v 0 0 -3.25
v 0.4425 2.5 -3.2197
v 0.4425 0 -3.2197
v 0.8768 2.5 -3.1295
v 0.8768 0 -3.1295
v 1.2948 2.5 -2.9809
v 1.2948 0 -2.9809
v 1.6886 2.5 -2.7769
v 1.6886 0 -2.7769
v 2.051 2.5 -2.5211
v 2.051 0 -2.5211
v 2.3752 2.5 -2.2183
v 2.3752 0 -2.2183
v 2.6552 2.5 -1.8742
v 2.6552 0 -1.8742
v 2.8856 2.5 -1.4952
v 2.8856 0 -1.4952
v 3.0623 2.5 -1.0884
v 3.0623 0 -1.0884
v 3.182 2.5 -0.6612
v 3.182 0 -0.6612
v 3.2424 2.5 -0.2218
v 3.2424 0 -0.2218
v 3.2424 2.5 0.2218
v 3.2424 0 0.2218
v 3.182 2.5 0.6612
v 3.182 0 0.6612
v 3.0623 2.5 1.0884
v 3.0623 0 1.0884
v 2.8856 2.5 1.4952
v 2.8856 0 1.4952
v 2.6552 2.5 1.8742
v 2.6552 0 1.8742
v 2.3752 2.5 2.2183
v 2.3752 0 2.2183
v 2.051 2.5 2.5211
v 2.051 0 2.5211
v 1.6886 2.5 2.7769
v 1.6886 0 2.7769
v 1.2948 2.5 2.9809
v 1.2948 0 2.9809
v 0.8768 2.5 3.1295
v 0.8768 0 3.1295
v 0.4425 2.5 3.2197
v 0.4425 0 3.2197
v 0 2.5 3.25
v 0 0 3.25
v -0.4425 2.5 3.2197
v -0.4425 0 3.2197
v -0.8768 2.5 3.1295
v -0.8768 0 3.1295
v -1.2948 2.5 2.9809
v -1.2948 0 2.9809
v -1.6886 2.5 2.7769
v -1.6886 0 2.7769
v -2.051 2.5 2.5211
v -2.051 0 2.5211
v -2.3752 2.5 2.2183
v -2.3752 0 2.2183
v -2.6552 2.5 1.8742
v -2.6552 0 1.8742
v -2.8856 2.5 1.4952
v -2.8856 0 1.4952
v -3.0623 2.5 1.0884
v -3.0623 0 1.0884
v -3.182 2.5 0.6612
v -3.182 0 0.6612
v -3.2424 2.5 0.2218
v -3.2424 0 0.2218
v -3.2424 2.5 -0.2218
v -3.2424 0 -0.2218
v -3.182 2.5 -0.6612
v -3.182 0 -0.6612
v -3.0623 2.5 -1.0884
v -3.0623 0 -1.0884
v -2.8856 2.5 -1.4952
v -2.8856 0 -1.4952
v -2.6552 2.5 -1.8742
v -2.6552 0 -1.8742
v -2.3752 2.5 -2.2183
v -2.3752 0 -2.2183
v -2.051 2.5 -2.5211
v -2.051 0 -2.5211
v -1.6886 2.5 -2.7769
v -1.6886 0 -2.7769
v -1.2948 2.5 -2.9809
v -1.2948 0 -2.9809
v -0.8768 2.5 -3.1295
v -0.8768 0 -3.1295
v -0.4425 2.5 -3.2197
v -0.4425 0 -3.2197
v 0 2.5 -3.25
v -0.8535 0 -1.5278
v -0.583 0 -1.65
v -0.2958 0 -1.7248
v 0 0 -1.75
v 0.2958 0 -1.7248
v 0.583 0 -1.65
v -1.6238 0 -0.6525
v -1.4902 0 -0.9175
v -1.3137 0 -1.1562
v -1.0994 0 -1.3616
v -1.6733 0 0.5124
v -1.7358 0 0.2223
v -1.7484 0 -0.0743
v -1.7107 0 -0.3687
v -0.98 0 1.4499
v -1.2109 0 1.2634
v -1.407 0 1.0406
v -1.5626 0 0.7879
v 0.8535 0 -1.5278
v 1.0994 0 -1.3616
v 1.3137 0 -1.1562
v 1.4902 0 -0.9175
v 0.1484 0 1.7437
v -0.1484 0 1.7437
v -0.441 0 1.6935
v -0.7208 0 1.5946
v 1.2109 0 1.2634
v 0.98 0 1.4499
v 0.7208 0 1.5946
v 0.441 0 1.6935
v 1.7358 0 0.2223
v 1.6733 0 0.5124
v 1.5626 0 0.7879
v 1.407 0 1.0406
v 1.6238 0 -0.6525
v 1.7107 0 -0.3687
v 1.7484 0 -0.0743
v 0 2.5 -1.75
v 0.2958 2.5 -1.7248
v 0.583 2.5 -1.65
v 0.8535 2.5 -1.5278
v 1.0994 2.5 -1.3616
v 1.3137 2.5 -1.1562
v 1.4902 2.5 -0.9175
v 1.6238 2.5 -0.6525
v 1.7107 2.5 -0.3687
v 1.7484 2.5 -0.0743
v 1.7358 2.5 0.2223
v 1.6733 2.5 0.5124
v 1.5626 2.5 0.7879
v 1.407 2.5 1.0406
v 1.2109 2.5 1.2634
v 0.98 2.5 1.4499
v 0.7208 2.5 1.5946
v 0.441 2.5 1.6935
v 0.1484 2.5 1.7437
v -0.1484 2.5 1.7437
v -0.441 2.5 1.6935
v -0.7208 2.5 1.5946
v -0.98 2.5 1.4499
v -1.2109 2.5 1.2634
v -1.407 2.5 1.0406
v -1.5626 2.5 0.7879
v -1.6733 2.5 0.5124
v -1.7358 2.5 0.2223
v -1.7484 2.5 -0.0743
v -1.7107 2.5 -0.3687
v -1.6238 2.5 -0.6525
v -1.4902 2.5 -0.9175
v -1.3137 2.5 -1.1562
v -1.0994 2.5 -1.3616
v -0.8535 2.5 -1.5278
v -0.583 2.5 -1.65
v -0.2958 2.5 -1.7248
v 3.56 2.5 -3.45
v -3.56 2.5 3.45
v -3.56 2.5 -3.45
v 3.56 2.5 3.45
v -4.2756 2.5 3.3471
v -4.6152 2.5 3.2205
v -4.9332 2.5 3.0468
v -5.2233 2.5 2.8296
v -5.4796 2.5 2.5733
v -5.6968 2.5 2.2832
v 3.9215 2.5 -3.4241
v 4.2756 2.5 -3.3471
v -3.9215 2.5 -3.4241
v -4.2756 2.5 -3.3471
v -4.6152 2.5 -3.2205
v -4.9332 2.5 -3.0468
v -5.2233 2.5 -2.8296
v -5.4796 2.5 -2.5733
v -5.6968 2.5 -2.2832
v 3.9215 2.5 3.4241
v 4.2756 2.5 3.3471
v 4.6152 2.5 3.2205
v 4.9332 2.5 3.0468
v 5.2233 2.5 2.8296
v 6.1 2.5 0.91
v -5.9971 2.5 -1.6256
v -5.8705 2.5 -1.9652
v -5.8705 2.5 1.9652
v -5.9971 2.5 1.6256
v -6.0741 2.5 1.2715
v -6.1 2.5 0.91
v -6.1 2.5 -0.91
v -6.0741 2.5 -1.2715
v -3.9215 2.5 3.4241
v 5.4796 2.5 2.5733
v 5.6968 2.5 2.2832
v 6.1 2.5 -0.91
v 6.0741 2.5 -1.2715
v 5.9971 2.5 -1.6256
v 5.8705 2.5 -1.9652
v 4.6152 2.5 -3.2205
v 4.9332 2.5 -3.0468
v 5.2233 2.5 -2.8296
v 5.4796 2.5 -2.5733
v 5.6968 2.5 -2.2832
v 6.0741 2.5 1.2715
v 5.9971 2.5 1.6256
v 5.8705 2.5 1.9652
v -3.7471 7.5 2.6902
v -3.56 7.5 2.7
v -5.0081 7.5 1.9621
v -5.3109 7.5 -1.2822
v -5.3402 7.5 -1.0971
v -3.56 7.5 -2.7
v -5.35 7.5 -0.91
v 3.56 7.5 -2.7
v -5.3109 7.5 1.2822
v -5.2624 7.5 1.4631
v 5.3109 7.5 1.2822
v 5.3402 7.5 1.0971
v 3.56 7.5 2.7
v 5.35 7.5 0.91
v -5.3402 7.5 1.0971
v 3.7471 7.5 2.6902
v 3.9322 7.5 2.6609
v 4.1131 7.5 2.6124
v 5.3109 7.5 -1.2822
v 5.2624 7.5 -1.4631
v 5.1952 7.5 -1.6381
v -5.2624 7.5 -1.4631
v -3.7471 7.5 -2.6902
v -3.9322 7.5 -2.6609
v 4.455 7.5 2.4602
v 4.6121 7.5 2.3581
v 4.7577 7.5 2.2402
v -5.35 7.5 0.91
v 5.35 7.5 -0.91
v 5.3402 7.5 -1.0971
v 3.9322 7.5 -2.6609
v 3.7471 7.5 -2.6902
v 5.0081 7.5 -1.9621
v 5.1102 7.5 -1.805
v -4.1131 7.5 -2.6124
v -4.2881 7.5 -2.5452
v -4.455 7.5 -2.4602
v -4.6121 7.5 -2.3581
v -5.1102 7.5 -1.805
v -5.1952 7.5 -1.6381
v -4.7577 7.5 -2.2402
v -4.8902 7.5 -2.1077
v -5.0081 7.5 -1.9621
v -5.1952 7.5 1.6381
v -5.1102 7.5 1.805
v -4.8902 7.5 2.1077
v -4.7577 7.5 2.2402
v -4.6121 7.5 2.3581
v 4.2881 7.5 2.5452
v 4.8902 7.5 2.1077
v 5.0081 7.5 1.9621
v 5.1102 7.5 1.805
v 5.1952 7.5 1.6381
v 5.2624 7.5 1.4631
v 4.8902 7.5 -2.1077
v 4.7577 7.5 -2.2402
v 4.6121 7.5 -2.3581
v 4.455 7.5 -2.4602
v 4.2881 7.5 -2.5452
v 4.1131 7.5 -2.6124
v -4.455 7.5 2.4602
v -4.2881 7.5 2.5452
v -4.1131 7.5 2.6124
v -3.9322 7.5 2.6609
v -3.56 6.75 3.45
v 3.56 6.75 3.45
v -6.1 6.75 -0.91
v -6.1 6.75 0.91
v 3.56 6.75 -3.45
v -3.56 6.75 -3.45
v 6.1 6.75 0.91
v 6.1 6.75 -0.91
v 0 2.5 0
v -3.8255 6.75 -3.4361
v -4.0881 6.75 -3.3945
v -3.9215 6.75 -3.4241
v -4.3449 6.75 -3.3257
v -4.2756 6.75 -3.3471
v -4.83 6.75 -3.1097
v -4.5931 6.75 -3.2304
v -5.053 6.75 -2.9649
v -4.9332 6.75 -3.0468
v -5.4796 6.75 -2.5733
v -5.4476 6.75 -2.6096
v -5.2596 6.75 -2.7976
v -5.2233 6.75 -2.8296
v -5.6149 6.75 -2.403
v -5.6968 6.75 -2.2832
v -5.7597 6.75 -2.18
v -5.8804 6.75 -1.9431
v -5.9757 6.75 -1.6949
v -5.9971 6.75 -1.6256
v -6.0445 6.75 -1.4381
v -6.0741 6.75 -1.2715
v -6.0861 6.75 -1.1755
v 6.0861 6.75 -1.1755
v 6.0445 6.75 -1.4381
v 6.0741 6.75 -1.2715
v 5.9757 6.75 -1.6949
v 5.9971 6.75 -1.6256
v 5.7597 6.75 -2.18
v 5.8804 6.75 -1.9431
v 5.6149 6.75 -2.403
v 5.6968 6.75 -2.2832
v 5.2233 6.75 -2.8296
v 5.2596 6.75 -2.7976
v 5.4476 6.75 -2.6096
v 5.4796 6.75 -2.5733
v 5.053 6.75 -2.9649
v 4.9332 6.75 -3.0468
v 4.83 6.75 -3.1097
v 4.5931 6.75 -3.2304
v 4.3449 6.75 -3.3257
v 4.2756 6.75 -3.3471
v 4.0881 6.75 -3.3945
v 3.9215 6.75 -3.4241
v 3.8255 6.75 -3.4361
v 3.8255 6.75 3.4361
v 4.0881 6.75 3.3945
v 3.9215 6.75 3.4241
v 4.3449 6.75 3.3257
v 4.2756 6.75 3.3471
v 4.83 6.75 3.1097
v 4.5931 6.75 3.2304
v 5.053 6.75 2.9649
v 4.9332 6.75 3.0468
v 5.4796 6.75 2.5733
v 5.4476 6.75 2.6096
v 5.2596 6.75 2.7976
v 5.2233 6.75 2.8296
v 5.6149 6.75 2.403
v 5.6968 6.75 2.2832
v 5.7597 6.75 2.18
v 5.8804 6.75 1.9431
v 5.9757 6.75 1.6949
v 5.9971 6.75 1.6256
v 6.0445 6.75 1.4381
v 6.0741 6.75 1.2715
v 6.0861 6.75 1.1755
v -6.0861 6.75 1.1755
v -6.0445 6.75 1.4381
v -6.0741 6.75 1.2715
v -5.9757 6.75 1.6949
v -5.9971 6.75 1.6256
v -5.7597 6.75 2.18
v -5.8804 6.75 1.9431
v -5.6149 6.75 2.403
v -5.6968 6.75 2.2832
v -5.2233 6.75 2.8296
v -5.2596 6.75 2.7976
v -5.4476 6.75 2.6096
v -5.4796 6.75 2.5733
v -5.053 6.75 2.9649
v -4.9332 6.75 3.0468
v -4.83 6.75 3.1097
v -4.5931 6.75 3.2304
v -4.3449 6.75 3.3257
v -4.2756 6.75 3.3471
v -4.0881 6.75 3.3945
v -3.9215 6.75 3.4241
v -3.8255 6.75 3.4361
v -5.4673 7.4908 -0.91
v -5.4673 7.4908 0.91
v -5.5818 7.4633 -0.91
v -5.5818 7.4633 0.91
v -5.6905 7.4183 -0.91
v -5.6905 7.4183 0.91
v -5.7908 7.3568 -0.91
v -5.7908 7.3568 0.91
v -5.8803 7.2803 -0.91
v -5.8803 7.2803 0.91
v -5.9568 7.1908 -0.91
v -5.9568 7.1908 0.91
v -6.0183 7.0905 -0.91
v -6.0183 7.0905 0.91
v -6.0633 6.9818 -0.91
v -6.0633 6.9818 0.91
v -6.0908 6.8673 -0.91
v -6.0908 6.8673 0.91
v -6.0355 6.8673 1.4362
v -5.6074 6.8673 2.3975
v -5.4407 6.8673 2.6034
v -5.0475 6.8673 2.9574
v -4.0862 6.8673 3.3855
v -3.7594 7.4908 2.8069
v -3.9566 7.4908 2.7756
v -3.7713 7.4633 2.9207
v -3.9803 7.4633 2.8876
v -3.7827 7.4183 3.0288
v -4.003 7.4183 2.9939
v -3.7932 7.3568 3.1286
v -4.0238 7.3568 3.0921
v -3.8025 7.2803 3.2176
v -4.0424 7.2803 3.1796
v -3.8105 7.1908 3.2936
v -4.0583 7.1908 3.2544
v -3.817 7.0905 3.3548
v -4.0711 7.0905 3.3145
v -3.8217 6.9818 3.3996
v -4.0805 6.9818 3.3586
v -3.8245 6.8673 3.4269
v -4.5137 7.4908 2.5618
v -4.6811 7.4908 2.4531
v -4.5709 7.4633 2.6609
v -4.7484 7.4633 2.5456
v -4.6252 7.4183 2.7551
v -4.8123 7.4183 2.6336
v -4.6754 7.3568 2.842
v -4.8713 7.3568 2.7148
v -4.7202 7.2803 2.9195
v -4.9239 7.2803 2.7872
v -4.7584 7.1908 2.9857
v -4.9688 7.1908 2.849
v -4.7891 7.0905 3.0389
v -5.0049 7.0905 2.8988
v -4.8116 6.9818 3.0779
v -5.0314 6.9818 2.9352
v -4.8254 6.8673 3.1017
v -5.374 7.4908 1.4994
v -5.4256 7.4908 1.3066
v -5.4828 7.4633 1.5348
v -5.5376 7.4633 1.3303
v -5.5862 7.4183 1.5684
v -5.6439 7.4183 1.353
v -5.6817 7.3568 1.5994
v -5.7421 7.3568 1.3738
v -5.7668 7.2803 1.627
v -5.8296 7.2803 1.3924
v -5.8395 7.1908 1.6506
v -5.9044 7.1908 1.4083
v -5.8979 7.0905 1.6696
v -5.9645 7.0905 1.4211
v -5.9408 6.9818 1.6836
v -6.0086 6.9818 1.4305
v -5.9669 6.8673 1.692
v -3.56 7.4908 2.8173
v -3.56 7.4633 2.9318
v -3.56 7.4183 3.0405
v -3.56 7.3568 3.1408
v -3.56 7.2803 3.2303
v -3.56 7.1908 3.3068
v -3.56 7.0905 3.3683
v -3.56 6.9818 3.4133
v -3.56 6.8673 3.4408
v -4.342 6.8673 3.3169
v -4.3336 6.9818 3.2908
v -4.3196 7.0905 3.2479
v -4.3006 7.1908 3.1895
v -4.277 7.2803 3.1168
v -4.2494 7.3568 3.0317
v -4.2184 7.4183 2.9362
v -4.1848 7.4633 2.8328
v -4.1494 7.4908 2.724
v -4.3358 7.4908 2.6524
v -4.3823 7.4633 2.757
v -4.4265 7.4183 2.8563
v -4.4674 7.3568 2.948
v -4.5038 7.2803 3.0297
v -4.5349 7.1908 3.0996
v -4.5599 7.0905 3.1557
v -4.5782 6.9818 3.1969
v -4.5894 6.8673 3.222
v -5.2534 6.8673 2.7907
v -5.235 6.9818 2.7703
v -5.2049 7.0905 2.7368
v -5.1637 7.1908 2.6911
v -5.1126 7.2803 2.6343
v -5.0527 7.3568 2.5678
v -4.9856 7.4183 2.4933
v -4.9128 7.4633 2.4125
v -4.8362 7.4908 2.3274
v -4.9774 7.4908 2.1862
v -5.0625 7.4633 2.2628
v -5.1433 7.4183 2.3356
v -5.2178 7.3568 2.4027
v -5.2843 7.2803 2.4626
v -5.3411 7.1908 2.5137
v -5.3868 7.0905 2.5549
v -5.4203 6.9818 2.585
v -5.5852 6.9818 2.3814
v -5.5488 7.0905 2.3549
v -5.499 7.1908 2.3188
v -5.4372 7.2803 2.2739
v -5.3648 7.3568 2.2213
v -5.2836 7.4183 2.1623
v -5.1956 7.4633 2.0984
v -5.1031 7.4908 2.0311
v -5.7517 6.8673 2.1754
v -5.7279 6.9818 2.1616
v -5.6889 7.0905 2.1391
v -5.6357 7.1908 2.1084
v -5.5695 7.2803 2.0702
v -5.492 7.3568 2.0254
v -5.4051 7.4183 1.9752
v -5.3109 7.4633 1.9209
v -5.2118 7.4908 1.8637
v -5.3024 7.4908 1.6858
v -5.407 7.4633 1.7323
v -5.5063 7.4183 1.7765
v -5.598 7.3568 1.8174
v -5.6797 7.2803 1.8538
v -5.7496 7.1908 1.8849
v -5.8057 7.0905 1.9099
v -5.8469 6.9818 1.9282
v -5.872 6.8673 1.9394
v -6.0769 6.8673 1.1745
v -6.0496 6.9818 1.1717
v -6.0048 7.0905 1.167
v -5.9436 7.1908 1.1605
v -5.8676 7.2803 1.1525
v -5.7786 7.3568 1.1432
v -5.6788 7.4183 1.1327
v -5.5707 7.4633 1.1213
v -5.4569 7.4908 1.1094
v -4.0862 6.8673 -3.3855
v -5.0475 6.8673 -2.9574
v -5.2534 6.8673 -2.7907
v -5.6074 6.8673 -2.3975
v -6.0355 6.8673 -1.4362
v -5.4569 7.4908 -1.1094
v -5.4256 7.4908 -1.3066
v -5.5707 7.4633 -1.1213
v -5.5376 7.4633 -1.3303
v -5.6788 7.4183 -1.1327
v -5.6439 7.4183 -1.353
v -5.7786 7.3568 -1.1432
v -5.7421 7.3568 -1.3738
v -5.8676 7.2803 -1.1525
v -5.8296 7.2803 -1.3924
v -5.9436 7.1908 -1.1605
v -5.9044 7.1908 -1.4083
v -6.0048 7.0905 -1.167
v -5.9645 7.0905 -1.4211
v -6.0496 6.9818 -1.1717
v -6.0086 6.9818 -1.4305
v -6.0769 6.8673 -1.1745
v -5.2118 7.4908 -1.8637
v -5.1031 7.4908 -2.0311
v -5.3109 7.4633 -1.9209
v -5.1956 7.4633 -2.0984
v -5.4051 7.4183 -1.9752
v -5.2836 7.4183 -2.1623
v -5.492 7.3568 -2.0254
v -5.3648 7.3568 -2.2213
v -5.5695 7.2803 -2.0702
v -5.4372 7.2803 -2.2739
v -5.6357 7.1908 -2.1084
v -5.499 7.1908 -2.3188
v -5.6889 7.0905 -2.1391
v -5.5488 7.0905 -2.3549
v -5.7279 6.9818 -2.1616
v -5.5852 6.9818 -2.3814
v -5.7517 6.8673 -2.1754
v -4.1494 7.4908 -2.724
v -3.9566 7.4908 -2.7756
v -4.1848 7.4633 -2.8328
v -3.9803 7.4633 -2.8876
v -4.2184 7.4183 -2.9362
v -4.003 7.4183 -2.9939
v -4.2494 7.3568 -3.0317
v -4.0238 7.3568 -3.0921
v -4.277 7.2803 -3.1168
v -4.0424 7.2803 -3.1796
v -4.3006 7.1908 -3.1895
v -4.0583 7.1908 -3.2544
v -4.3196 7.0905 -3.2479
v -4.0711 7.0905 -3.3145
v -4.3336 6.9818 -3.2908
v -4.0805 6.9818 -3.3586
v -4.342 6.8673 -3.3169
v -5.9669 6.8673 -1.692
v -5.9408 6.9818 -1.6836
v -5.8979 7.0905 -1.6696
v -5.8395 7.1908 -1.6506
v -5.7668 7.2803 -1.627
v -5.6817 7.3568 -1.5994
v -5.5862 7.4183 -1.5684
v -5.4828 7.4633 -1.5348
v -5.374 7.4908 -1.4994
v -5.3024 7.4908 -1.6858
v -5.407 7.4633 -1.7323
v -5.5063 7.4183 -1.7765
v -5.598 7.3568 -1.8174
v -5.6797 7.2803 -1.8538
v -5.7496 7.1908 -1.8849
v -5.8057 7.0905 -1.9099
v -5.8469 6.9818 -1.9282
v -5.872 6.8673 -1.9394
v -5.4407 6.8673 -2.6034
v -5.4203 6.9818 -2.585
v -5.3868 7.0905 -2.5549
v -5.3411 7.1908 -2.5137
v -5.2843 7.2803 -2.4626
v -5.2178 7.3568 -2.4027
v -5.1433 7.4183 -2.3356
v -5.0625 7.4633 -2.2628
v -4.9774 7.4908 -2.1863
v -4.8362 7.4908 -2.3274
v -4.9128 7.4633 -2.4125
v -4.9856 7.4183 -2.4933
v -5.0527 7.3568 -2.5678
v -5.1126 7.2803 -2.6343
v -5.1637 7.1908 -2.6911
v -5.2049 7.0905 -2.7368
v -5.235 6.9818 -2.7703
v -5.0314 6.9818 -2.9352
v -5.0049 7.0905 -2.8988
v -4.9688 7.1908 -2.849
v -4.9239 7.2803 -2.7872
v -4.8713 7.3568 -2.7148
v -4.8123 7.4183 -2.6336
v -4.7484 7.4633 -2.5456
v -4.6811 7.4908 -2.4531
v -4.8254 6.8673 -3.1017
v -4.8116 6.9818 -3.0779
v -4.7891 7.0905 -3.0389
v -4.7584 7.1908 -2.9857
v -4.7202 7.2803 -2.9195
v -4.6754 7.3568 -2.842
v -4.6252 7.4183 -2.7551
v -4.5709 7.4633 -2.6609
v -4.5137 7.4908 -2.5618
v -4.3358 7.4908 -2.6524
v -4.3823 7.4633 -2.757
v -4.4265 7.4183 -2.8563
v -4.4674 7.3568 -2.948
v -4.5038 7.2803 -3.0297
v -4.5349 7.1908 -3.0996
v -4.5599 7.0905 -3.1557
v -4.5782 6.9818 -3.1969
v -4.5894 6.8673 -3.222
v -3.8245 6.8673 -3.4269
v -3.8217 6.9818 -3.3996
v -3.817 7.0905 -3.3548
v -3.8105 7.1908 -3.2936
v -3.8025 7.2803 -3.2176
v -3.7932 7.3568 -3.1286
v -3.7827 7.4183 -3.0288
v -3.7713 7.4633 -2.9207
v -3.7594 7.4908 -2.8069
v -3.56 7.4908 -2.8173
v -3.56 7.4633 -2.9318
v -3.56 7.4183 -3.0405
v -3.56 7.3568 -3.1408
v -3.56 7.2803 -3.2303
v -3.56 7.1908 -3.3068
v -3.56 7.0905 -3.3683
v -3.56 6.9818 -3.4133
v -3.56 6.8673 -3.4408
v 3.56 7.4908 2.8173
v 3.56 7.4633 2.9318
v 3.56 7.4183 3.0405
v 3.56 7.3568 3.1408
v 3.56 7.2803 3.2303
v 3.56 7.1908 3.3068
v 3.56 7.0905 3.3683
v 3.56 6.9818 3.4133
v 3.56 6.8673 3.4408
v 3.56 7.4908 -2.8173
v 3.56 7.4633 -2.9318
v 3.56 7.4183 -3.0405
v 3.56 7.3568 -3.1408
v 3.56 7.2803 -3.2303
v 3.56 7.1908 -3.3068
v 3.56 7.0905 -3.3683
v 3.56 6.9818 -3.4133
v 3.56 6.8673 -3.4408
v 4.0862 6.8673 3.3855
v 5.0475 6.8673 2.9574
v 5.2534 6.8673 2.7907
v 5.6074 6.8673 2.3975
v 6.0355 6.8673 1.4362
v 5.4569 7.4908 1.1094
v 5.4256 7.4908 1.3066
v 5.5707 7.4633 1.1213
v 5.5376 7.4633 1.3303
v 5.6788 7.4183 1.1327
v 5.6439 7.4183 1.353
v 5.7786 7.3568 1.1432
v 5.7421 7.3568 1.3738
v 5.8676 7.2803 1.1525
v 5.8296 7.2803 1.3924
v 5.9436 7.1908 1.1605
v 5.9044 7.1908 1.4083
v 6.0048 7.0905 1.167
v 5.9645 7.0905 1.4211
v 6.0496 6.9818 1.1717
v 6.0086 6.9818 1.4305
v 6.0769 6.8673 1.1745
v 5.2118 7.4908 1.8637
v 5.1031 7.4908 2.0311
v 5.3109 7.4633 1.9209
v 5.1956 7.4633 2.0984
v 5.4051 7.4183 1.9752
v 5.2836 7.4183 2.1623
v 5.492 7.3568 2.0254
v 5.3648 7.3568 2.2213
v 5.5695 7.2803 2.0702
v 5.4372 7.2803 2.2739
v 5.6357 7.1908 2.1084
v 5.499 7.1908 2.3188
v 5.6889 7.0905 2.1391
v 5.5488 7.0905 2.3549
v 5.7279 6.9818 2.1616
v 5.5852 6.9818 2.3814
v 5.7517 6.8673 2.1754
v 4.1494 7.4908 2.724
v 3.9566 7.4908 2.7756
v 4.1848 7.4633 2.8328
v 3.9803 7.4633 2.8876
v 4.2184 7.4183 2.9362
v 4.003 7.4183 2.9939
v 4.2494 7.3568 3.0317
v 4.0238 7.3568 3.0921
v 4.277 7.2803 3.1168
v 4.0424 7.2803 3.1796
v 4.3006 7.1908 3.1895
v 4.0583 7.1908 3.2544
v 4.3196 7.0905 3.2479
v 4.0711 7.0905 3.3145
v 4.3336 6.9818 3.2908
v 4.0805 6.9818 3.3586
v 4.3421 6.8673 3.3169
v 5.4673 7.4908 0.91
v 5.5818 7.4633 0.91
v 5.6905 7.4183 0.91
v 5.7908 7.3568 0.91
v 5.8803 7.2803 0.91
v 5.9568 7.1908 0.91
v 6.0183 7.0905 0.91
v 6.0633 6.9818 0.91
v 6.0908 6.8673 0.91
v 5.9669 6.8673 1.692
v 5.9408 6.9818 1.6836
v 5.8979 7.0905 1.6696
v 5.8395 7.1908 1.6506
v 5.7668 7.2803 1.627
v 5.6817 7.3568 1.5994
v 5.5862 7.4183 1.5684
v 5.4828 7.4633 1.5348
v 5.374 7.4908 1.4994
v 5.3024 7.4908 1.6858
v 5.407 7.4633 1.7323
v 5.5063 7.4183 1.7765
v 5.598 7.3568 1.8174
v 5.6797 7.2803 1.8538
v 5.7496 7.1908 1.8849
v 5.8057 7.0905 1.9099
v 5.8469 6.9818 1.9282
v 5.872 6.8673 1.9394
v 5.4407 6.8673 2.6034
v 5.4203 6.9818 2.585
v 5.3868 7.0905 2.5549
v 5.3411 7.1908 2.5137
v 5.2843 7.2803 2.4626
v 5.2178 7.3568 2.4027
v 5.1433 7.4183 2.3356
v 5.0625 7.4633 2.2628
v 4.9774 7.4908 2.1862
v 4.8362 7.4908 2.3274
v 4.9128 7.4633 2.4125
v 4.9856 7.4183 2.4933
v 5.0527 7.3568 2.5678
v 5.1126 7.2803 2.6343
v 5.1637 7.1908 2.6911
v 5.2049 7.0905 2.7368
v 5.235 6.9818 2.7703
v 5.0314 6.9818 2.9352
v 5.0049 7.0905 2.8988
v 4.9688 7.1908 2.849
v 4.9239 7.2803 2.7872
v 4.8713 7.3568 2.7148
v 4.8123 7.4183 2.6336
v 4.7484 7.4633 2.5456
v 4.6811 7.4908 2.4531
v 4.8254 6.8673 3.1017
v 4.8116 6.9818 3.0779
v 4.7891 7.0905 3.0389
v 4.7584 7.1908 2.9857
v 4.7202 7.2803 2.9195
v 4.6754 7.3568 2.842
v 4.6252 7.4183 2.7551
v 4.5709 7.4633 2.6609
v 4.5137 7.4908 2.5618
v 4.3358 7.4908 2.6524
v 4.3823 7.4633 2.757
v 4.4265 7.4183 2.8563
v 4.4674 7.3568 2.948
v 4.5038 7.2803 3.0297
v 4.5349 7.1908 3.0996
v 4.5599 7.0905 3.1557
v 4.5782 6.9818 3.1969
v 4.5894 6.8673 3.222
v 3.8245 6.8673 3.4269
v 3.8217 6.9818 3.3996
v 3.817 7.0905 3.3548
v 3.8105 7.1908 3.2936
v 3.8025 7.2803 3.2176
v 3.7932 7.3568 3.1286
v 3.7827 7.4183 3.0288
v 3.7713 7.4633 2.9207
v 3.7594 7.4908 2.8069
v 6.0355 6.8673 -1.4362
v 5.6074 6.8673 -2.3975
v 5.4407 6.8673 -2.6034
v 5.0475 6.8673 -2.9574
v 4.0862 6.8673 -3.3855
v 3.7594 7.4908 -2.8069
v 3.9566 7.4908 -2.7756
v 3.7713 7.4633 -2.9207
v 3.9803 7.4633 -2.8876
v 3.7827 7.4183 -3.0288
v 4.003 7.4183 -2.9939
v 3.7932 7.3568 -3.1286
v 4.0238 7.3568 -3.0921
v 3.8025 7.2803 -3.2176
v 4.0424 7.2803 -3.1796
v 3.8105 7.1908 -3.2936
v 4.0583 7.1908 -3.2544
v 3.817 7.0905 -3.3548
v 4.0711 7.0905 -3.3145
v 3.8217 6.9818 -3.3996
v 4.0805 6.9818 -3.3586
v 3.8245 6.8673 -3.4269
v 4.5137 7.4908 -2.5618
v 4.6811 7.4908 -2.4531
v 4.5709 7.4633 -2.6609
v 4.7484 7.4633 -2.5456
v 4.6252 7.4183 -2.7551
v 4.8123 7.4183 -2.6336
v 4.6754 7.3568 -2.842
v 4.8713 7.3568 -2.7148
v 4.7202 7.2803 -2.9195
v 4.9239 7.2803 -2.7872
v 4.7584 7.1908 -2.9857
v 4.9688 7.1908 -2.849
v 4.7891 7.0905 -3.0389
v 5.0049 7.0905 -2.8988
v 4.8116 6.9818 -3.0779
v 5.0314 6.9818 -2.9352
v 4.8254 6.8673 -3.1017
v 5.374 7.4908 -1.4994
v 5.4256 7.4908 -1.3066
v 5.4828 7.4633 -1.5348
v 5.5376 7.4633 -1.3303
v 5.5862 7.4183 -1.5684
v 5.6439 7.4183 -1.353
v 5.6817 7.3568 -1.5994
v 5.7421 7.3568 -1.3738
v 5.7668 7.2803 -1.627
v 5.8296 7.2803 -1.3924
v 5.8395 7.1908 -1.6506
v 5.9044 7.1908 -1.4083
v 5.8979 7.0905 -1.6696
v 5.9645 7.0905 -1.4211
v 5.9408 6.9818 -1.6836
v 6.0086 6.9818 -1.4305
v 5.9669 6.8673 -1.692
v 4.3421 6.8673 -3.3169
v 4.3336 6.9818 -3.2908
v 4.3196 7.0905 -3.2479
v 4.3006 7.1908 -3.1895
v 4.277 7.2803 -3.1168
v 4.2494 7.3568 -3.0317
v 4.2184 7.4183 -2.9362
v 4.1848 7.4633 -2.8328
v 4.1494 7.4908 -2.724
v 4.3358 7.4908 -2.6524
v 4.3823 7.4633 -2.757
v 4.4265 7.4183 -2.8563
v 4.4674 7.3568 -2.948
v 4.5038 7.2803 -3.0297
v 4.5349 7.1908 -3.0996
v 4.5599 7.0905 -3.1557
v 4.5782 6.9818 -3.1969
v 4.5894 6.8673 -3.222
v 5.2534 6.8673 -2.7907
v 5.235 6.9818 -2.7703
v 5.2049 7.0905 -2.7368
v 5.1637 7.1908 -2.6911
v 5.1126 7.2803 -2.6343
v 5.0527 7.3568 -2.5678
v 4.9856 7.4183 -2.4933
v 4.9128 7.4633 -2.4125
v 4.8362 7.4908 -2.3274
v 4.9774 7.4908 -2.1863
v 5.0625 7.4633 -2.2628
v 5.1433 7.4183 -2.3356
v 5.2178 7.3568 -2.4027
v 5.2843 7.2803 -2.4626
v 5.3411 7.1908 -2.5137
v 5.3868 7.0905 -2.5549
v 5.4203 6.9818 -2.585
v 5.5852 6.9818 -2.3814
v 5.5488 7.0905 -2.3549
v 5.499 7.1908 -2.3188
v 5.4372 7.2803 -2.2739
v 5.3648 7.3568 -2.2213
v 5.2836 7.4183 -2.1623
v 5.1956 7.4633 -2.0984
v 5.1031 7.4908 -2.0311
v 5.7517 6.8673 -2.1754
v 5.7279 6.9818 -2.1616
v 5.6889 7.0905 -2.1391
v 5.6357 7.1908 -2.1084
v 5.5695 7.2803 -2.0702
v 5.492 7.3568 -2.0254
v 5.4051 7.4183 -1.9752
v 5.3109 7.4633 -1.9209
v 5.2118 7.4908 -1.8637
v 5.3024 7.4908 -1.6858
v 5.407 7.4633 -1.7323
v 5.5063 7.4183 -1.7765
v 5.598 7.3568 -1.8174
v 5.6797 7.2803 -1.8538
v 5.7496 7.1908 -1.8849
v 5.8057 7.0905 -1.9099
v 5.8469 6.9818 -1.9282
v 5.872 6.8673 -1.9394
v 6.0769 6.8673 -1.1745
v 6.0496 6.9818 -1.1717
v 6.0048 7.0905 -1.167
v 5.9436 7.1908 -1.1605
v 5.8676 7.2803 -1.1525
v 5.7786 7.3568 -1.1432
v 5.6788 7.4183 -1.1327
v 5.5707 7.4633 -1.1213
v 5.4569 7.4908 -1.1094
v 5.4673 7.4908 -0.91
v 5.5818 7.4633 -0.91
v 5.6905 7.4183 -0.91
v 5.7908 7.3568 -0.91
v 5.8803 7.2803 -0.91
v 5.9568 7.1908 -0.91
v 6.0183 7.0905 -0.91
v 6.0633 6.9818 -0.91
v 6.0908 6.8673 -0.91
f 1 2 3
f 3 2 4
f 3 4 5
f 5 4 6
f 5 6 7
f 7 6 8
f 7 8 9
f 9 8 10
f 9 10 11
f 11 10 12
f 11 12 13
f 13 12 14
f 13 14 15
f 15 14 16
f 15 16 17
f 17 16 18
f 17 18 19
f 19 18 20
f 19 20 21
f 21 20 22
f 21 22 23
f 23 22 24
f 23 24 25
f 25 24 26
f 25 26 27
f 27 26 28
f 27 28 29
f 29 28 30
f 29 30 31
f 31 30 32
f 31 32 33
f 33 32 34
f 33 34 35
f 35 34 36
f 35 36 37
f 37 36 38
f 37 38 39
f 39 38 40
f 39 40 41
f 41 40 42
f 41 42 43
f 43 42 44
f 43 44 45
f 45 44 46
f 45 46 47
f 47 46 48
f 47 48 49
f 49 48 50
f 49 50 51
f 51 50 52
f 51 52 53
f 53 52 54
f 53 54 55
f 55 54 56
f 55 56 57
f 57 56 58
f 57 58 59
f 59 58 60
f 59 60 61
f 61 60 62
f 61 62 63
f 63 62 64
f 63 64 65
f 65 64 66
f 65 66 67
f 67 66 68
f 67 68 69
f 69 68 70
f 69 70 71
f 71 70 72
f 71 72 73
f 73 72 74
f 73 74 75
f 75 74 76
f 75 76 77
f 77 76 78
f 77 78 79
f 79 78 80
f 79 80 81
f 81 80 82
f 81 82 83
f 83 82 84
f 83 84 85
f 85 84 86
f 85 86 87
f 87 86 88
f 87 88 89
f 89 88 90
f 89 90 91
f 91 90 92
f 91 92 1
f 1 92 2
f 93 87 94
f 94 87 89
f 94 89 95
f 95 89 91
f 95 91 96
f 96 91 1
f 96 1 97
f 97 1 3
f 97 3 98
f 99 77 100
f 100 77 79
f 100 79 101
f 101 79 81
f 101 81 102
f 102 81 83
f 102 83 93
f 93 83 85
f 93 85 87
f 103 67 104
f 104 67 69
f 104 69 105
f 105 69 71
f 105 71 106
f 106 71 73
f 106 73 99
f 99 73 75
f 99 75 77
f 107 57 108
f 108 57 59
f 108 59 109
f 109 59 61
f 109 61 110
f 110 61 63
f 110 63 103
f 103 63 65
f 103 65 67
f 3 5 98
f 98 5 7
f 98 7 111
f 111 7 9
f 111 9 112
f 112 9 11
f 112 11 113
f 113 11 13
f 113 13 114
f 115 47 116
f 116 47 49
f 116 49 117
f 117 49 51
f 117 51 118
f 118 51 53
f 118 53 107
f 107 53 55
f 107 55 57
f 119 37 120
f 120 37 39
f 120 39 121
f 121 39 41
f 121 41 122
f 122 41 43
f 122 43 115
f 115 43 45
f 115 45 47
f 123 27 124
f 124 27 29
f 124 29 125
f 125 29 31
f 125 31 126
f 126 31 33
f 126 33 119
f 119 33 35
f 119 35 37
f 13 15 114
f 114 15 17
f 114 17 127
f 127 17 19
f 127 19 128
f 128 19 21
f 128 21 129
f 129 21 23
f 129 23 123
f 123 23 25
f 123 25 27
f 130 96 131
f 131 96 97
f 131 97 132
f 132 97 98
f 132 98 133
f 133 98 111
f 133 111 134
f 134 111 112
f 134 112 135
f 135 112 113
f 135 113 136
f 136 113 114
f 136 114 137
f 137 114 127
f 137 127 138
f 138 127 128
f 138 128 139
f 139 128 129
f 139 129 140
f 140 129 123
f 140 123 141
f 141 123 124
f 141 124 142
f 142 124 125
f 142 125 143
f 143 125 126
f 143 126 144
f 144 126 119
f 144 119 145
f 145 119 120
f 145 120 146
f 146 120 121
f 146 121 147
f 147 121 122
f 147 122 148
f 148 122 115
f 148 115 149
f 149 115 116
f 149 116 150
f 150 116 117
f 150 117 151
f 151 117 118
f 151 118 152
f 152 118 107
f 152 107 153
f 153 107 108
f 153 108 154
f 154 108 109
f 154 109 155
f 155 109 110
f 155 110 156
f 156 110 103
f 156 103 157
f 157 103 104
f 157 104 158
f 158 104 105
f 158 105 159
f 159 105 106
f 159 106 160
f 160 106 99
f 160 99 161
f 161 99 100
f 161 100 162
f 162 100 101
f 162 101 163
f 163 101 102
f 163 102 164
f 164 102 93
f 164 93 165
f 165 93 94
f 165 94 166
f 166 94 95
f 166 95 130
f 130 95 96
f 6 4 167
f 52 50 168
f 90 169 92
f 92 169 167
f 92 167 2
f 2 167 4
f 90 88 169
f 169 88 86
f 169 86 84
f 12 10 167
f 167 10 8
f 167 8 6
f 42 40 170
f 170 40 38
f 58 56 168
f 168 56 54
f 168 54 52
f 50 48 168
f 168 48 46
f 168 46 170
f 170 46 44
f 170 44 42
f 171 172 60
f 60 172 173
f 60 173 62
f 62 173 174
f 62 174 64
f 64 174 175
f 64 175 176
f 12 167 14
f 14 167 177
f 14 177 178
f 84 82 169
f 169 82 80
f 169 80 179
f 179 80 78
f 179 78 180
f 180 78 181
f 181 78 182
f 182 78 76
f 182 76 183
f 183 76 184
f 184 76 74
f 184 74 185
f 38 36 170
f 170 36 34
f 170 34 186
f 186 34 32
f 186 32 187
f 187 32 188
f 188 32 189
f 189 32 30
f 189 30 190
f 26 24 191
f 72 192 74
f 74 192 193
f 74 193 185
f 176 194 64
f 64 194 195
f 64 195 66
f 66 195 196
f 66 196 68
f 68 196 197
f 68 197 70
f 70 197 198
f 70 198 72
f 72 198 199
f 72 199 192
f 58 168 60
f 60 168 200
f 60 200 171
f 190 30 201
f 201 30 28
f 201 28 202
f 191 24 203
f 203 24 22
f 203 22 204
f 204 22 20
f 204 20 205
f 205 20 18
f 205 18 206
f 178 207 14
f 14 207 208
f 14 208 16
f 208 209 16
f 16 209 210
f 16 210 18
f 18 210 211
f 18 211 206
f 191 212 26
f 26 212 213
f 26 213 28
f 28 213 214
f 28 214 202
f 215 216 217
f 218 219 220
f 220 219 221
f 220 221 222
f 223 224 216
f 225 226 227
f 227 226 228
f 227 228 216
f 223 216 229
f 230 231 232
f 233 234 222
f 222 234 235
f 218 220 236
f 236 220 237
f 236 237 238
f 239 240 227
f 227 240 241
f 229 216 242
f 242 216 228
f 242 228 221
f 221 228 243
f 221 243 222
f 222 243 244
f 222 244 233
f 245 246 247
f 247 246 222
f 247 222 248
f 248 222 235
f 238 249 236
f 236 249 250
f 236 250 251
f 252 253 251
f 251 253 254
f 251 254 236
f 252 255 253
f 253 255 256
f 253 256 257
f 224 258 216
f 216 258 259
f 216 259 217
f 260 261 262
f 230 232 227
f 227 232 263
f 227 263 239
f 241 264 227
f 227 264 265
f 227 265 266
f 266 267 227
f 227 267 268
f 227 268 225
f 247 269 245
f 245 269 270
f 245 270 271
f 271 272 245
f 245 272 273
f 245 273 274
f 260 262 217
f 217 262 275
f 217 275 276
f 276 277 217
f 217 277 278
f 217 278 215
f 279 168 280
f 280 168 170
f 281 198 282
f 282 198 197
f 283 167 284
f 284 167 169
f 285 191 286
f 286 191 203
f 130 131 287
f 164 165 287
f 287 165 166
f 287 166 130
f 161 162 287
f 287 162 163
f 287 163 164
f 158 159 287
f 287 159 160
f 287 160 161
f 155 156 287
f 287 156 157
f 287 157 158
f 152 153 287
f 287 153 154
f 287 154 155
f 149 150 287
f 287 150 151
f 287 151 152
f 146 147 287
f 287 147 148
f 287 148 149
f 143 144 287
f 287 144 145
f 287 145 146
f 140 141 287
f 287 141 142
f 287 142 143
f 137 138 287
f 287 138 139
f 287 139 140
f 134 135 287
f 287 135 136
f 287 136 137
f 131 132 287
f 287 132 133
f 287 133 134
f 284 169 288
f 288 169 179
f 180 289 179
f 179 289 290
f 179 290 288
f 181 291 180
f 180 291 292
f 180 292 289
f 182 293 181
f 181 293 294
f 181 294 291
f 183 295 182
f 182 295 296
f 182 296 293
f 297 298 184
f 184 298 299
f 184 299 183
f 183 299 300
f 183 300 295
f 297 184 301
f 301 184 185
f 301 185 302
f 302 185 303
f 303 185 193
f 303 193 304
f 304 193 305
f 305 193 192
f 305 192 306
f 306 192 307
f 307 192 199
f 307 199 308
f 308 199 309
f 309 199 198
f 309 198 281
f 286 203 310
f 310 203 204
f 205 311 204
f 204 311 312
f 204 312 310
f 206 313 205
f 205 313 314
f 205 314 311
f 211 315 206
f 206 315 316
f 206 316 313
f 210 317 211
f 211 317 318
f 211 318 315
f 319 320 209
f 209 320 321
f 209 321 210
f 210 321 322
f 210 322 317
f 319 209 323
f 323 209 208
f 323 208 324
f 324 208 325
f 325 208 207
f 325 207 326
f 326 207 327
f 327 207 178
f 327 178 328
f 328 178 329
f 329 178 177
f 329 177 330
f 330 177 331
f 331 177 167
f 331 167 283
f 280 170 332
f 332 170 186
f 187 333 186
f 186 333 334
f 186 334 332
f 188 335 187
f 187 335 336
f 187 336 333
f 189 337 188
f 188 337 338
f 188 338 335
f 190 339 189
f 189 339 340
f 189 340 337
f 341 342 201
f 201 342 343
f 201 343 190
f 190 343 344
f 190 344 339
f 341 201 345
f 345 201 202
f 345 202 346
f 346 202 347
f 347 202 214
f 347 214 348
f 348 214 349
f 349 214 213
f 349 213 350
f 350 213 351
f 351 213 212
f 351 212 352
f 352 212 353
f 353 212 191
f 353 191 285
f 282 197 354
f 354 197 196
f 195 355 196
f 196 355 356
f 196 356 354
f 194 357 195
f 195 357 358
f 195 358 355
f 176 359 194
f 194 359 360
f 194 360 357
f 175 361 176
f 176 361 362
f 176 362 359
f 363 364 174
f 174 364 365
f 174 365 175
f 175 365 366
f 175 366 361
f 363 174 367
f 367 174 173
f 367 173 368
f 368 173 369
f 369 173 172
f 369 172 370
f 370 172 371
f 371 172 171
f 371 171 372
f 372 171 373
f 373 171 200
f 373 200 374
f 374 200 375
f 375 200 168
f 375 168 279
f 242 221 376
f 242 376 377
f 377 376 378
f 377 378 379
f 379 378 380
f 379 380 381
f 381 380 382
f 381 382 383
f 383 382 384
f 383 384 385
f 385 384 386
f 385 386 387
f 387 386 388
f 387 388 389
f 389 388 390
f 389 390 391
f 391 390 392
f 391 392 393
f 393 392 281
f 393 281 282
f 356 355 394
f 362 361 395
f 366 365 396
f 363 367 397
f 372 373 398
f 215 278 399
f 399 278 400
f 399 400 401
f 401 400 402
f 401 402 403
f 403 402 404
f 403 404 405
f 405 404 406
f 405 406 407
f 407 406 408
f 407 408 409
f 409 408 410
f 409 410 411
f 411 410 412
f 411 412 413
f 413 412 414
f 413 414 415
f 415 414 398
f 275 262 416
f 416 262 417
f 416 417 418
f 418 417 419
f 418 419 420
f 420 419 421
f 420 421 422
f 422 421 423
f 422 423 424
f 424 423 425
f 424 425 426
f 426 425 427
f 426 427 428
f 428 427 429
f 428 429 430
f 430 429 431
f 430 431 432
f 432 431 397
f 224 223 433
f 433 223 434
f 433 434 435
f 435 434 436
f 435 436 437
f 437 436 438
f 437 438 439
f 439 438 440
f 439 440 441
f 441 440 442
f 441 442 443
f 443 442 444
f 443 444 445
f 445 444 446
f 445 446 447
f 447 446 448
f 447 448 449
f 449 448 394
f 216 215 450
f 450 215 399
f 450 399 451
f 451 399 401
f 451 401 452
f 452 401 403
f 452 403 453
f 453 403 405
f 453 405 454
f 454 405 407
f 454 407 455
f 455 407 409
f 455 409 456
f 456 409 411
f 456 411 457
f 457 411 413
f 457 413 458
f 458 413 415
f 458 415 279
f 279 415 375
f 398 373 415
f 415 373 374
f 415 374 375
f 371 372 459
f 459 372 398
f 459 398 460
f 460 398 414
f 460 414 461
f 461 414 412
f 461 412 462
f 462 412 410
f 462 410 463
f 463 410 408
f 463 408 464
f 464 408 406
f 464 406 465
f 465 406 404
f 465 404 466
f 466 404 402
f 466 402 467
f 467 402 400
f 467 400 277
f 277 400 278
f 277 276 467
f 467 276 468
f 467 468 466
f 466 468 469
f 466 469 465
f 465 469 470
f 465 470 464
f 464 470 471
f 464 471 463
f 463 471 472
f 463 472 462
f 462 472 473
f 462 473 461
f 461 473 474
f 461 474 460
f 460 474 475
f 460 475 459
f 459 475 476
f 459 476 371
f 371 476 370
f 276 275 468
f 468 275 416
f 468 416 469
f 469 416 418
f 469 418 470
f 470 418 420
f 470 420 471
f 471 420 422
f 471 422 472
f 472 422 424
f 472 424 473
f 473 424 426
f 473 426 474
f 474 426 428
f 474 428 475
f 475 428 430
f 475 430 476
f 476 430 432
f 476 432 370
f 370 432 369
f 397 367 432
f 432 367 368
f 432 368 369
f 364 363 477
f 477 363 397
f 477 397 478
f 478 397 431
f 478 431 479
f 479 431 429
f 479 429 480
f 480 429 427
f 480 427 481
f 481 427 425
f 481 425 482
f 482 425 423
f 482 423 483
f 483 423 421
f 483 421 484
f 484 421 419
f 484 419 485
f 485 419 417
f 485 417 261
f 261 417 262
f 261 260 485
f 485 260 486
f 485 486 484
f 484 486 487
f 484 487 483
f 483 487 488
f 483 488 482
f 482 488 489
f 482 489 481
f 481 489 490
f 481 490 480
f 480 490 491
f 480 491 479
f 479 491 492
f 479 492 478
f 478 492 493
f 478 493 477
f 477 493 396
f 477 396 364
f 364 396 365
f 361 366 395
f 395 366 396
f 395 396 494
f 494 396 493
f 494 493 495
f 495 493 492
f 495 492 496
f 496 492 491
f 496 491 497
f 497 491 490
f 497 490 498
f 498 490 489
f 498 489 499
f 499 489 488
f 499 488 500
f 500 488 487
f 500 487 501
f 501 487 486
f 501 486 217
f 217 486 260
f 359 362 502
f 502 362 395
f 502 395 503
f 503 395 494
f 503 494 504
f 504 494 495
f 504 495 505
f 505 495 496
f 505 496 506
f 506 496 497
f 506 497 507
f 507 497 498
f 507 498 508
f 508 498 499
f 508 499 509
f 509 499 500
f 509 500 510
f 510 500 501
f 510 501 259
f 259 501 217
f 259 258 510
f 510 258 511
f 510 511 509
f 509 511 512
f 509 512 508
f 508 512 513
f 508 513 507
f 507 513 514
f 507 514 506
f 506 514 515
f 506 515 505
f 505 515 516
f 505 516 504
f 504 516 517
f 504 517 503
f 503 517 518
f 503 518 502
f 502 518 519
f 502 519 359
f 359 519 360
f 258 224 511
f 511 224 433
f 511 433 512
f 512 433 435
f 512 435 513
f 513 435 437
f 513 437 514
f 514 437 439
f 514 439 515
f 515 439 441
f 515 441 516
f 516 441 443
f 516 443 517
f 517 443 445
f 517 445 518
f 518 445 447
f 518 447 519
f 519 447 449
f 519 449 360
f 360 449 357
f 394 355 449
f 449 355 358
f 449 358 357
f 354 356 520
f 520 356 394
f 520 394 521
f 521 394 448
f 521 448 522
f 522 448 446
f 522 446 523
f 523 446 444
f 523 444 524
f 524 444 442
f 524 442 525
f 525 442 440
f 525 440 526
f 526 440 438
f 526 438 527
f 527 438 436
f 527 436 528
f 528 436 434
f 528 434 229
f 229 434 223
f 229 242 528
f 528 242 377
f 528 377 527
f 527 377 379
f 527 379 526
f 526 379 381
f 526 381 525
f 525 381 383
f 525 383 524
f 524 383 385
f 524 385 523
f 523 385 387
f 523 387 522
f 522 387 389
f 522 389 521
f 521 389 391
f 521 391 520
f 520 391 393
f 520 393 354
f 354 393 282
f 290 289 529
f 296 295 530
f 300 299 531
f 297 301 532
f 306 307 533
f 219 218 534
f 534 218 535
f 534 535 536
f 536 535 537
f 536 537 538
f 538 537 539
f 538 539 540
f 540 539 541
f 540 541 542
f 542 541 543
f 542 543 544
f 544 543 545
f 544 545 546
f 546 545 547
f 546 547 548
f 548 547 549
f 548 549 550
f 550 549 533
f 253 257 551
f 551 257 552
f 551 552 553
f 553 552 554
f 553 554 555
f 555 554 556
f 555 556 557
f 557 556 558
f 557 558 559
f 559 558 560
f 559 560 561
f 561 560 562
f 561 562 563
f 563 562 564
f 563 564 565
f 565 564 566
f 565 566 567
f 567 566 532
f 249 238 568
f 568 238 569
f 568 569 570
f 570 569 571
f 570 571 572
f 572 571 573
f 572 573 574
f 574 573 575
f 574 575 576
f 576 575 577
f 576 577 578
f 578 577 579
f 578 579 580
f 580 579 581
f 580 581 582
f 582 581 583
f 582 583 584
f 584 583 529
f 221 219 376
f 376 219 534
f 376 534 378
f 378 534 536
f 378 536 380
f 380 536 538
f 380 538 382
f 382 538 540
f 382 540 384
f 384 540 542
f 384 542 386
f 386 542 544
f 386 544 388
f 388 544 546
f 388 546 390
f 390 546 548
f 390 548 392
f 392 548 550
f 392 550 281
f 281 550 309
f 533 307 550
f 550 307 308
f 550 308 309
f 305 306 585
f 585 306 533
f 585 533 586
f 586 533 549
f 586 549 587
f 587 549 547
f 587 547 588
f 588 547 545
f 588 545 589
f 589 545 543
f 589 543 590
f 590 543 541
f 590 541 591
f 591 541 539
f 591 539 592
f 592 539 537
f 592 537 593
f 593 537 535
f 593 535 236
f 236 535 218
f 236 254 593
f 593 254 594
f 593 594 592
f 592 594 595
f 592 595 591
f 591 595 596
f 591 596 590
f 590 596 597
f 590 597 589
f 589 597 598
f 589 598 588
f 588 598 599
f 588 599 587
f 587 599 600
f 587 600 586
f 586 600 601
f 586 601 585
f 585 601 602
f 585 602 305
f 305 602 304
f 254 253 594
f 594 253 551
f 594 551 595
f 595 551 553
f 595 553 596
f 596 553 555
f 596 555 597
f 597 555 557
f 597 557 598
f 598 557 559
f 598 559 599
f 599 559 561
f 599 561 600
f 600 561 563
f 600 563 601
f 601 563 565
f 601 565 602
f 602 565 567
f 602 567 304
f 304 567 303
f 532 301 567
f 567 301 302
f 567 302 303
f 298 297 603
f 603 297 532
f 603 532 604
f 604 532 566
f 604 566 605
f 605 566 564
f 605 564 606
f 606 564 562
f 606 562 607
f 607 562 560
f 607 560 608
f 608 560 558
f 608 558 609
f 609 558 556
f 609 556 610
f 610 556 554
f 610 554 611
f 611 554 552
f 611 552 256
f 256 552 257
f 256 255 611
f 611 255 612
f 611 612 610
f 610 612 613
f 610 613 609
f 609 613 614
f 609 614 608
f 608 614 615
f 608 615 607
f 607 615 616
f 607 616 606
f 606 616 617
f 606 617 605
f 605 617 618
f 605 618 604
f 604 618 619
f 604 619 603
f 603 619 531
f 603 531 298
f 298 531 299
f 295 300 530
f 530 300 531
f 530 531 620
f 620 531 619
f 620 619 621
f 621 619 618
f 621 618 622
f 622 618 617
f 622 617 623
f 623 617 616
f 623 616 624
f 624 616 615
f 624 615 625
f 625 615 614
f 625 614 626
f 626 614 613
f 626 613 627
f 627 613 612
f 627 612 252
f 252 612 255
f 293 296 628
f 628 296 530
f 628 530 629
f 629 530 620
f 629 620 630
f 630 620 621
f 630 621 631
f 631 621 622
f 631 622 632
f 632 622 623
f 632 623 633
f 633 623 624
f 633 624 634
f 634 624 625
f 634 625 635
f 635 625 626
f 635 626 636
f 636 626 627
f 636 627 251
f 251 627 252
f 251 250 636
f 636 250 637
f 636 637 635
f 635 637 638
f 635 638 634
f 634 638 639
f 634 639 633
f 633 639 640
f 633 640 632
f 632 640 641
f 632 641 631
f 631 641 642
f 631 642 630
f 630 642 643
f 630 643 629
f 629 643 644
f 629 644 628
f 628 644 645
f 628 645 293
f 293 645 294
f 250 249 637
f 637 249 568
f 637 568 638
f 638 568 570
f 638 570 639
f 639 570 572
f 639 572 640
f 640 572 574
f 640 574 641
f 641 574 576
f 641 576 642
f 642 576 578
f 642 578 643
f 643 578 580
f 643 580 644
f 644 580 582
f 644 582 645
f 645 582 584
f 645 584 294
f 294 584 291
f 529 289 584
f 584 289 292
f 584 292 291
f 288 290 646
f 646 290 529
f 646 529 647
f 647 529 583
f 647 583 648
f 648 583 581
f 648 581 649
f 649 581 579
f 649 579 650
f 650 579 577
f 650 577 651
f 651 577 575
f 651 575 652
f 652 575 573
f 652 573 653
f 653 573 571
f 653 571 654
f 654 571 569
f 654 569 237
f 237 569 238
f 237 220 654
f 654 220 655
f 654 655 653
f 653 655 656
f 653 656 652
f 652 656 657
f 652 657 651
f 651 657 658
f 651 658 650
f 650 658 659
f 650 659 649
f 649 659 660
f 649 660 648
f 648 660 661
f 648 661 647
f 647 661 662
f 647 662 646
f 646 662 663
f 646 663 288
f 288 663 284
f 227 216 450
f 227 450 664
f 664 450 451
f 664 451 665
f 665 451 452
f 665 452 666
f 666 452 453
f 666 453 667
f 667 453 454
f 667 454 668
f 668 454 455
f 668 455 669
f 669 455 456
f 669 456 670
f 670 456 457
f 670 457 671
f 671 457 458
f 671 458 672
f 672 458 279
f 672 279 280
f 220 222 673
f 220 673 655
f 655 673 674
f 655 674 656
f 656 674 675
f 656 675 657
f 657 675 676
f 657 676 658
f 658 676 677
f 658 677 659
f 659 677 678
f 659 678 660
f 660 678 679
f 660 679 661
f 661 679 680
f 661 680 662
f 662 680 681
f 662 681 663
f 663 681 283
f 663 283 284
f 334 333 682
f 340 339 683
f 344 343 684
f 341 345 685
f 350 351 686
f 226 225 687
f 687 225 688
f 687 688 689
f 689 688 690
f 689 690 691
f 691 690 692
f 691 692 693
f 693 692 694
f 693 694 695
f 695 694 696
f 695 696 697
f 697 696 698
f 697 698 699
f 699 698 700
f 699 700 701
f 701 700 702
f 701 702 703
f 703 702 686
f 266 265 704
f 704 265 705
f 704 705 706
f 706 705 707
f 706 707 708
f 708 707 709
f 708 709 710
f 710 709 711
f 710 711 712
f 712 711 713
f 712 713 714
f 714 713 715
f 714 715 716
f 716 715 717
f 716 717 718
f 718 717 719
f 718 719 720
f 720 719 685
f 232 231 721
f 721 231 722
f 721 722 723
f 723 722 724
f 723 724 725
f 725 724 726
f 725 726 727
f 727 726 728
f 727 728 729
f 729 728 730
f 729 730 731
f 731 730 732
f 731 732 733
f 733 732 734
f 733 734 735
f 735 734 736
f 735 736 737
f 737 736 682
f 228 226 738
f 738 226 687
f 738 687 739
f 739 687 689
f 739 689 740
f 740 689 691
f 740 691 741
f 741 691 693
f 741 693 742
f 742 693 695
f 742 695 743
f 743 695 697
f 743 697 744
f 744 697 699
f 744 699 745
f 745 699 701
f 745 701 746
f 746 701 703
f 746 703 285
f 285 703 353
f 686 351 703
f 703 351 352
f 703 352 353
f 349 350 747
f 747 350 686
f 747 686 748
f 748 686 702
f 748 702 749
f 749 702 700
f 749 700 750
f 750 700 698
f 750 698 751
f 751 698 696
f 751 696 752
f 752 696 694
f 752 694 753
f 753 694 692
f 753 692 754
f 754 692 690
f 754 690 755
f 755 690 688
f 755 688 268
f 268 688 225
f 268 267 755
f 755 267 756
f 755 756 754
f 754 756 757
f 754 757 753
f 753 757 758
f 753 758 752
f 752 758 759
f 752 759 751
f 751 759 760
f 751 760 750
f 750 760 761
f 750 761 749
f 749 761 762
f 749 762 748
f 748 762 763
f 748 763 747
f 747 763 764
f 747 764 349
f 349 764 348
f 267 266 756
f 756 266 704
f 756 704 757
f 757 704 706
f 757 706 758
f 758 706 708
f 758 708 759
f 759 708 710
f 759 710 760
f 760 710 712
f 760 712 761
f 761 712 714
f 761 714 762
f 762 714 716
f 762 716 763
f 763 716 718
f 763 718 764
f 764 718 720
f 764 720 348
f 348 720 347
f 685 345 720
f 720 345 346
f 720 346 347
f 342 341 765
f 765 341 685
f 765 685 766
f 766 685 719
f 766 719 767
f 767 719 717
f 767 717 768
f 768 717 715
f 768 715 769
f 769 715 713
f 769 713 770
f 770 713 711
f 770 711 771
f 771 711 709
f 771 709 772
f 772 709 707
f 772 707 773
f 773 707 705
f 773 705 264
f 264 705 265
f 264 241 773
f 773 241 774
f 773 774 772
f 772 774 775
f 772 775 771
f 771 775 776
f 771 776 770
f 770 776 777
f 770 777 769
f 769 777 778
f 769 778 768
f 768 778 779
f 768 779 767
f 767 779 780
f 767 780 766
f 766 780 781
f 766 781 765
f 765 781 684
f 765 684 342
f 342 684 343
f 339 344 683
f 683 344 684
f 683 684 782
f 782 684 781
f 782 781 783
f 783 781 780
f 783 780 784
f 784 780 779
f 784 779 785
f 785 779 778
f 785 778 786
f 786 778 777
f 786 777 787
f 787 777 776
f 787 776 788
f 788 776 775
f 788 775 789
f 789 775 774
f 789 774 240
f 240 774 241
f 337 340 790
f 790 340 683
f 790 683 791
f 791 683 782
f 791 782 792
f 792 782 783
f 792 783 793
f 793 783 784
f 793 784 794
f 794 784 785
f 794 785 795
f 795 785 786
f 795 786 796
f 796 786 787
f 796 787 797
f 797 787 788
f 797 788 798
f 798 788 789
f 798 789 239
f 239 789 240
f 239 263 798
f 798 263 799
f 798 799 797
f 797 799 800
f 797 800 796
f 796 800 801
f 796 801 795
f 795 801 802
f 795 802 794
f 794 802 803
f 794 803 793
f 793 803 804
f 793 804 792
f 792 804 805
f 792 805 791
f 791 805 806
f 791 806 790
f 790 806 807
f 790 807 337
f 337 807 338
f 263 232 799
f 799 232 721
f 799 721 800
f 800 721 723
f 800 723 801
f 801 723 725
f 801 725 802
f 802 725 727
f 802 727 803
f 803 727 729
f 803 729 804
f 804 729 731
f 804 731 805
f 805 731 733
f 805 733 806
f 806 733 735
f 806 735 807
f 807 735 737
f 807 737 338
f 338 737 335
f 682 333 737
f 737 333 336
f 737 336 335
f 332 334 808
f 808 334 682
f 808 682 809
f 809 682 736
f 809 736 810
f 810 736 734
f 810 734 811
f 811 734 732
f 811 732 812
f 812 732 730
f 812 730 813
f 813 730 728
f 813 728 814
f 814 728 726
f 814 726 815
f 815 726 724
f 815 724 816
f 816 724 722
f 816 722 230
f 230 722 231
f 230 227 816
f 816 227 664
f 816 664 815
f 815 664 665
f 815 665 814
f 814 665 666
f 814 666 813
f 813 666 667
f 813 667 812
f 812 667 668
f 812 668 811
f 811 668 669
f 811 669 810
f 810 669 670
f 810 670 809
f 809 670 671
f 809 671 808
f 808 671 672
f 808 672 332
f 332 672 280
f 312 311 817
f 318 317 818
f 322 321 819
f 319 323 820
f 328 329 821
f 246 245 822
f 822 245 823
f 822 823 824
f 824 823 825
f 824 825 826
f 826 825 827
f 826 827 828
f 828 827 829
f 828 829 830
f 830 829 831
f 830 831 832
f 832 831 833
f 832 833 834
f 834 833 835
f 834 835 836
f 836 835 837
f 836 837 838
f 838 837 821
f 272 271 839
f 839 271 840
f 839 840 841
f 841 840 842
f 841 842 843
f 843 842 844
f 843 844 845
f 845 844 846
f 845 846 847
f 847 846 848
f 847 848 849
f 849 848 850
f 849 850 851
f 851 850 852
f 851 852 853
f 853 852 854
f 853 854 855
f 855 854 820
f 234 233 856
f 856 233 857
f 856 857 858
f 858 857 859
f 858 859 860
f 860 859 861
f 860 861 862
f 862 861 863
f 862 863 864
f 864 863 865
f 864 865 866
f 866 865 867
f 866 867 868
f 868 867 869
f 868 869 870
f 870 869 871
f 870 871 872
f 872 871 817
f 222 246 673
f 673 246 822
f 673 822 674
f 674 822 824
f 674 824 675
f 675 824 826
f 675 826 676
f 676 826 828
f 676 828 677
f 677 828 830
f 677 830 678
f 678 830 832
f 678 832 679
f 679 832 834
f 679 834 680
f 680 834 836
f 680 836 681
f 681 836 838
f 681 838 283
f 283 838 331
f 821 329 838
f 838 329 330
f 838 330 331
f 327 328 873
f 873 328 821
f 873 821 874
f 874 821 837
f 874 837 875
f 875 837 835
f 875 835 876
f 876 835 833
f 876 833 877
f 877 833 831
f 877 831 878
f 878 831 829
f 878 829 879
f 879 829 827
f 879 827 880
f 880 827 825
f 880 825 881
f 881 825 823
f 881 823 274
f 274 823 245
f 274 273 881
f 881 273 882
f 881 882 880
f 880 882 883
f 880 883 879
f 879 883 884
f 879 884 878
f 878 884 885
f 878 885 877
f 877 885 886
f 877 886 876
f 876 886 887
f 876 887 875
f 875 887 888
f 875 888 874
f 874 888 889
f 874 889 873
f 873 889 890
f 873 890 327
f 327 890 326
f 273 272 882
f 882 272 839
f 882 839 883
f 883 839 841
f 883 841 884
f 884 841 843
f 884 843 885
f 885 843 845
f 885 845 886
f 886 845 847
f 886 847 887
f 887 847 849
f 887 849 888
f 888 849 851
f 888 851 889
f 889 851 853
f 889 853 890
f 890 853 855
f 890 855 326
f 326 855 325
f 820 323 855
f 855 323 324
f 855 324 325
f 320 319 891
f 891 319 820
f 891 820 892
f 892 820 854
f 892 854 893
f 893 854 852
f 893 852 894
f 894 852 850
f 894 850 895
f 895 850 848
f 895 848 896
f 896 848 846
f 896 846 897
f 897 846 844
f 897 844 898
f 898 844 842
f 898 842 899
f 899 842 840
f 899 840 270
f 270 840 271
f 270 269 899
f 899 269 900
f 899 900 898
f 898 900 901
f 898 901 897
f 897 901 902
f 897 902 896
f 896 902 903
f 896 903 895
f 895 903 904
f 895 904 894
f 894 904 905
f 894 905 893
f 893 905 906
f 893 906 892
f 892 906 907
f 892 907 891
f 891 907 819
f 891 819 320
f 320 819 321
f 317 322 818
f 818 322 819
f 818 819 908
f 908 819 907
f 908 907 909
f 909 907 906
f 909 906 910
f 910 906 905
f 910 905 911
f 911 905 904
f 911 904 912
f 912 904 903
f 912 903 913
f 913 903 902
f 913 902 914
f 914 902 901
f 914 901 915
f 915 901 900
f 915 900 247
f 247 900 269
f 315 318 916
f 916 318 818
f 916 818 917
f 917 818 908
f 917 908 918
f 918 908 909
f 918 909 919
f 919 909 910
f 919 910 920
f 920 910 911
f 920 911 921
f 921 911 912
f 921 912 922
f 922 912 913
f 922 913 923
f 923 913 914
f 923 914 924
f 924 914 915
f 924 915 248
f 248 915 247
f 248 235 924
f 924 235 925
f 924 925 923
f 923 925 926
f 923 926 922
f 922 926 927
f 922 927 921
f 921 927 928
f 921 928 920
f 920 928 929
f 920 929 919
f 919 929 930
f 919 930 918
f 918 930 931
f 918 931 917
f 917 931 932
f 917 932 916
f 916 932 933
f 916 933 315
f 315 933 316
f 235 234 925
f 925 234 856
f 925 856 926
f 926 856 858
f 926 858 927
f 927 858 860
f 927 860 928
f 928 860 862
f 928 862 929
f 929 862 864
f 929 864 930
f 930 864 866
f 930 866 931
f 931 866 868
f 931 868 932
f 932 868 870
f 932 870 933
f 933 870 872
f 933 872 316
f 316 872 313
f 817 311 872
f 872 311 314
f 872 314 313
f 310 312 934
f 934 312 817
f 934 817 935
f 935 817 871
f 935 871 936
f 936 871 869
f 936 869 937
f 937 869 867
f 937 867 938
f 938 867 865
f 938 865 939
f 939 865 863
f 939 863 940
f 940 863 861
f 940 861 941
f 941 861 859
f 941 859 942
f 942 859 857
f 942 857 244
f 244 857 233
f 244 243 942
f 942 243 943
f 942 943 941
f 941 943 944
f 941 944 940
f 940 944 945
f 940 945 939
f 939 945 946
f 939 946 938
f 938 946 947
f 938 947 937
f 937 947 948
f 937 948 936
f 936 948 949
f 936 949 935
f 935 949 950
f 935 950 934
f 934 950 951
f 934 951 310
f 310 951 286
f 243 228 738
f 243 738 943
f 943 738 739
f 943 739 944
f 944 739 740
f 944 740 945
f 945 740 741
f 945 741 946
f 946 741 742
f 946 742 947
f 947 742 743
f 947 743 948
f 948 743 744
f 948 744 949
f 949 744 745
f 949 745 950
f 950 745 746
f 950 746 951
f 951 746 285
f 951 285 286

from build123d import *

# Parameters (mm, degrees)
SKETCH1_R           = 3.25
BOSS_EXTRUDE1_DEPTH = 2.5
SKETCH2_R           = 1.75
CUT_EXTRUDE1_DEPTH  = 2.5
SKETCH3_W           = 12.2
SKETCH3_H           = 6.9
BOSS_EXTRUDE2_DEPTH = 5
FILLET1_R           = 2.54
FILLET2_R           = 0.75


with BuildPart() as part:
    # Sketch1 → Boss-Extrude1 (new body)
    with BuildSketch(Plane(origin=(0, 0, 0), x_dir=(1, 0, 0), z_dir=(0, 1, 0))):
        Circle(SKETCH1_R)
    extrude(amount=BOSS_EXTRUDE1_DEPTH)

    # Sketch2 → Cut-Extrude1 (cut)
    with BuildSketch(Plane.XZ):
        Circle(SKETCH2_R)
    extrude(amount=-CUT_EXTRUDE1_DEPTH, mode=Mode.SUBTRACT)

    # Sketch3 → Boss-Extrude2 (add)
    with BuildSketch(Plane(origin=(0, 2.5, 0), x_dir=(1, 0, 0), z_dir=(0, 1, 0))):
        Rectangle(SKETCH3_W, SKETCH3_H)
    extrude(amount=BOSS_EXTRUDE2_DEPTH)

    # Fillet1
    fillet1_edges = [part.edges().sort_by_distance(p)[0] for p in [
        (6.1, 5, 3.45),
        (6.1, 5, -3.45),
        (-6.1, 5, -3.45),
        (-6.1, 5, 3.45),
    ]]
    fillet(fillet1_edges, radius=FILLET1_R)

    # Fillet2
    fillet2_edges = [part.edges().sort_by_distance(p)[0] for p in [
        (-6.1, 7.5, 0),
        (0, 7.5, -3.45),
        (6.1, 7.5, 0),
        (0, 7.5, 3.45),
        (-5.356051224, 7.5, 2.706051224),
        (5.356051224, 7.5, 2.706051224),
        (5.356051224, 7.5, -2.706051224),
        (-5.356051224, 7.5, -2.706051224),
    ]]
    fillet(fillet2_edges, radius=FILLET2_R)


solid = part.part
